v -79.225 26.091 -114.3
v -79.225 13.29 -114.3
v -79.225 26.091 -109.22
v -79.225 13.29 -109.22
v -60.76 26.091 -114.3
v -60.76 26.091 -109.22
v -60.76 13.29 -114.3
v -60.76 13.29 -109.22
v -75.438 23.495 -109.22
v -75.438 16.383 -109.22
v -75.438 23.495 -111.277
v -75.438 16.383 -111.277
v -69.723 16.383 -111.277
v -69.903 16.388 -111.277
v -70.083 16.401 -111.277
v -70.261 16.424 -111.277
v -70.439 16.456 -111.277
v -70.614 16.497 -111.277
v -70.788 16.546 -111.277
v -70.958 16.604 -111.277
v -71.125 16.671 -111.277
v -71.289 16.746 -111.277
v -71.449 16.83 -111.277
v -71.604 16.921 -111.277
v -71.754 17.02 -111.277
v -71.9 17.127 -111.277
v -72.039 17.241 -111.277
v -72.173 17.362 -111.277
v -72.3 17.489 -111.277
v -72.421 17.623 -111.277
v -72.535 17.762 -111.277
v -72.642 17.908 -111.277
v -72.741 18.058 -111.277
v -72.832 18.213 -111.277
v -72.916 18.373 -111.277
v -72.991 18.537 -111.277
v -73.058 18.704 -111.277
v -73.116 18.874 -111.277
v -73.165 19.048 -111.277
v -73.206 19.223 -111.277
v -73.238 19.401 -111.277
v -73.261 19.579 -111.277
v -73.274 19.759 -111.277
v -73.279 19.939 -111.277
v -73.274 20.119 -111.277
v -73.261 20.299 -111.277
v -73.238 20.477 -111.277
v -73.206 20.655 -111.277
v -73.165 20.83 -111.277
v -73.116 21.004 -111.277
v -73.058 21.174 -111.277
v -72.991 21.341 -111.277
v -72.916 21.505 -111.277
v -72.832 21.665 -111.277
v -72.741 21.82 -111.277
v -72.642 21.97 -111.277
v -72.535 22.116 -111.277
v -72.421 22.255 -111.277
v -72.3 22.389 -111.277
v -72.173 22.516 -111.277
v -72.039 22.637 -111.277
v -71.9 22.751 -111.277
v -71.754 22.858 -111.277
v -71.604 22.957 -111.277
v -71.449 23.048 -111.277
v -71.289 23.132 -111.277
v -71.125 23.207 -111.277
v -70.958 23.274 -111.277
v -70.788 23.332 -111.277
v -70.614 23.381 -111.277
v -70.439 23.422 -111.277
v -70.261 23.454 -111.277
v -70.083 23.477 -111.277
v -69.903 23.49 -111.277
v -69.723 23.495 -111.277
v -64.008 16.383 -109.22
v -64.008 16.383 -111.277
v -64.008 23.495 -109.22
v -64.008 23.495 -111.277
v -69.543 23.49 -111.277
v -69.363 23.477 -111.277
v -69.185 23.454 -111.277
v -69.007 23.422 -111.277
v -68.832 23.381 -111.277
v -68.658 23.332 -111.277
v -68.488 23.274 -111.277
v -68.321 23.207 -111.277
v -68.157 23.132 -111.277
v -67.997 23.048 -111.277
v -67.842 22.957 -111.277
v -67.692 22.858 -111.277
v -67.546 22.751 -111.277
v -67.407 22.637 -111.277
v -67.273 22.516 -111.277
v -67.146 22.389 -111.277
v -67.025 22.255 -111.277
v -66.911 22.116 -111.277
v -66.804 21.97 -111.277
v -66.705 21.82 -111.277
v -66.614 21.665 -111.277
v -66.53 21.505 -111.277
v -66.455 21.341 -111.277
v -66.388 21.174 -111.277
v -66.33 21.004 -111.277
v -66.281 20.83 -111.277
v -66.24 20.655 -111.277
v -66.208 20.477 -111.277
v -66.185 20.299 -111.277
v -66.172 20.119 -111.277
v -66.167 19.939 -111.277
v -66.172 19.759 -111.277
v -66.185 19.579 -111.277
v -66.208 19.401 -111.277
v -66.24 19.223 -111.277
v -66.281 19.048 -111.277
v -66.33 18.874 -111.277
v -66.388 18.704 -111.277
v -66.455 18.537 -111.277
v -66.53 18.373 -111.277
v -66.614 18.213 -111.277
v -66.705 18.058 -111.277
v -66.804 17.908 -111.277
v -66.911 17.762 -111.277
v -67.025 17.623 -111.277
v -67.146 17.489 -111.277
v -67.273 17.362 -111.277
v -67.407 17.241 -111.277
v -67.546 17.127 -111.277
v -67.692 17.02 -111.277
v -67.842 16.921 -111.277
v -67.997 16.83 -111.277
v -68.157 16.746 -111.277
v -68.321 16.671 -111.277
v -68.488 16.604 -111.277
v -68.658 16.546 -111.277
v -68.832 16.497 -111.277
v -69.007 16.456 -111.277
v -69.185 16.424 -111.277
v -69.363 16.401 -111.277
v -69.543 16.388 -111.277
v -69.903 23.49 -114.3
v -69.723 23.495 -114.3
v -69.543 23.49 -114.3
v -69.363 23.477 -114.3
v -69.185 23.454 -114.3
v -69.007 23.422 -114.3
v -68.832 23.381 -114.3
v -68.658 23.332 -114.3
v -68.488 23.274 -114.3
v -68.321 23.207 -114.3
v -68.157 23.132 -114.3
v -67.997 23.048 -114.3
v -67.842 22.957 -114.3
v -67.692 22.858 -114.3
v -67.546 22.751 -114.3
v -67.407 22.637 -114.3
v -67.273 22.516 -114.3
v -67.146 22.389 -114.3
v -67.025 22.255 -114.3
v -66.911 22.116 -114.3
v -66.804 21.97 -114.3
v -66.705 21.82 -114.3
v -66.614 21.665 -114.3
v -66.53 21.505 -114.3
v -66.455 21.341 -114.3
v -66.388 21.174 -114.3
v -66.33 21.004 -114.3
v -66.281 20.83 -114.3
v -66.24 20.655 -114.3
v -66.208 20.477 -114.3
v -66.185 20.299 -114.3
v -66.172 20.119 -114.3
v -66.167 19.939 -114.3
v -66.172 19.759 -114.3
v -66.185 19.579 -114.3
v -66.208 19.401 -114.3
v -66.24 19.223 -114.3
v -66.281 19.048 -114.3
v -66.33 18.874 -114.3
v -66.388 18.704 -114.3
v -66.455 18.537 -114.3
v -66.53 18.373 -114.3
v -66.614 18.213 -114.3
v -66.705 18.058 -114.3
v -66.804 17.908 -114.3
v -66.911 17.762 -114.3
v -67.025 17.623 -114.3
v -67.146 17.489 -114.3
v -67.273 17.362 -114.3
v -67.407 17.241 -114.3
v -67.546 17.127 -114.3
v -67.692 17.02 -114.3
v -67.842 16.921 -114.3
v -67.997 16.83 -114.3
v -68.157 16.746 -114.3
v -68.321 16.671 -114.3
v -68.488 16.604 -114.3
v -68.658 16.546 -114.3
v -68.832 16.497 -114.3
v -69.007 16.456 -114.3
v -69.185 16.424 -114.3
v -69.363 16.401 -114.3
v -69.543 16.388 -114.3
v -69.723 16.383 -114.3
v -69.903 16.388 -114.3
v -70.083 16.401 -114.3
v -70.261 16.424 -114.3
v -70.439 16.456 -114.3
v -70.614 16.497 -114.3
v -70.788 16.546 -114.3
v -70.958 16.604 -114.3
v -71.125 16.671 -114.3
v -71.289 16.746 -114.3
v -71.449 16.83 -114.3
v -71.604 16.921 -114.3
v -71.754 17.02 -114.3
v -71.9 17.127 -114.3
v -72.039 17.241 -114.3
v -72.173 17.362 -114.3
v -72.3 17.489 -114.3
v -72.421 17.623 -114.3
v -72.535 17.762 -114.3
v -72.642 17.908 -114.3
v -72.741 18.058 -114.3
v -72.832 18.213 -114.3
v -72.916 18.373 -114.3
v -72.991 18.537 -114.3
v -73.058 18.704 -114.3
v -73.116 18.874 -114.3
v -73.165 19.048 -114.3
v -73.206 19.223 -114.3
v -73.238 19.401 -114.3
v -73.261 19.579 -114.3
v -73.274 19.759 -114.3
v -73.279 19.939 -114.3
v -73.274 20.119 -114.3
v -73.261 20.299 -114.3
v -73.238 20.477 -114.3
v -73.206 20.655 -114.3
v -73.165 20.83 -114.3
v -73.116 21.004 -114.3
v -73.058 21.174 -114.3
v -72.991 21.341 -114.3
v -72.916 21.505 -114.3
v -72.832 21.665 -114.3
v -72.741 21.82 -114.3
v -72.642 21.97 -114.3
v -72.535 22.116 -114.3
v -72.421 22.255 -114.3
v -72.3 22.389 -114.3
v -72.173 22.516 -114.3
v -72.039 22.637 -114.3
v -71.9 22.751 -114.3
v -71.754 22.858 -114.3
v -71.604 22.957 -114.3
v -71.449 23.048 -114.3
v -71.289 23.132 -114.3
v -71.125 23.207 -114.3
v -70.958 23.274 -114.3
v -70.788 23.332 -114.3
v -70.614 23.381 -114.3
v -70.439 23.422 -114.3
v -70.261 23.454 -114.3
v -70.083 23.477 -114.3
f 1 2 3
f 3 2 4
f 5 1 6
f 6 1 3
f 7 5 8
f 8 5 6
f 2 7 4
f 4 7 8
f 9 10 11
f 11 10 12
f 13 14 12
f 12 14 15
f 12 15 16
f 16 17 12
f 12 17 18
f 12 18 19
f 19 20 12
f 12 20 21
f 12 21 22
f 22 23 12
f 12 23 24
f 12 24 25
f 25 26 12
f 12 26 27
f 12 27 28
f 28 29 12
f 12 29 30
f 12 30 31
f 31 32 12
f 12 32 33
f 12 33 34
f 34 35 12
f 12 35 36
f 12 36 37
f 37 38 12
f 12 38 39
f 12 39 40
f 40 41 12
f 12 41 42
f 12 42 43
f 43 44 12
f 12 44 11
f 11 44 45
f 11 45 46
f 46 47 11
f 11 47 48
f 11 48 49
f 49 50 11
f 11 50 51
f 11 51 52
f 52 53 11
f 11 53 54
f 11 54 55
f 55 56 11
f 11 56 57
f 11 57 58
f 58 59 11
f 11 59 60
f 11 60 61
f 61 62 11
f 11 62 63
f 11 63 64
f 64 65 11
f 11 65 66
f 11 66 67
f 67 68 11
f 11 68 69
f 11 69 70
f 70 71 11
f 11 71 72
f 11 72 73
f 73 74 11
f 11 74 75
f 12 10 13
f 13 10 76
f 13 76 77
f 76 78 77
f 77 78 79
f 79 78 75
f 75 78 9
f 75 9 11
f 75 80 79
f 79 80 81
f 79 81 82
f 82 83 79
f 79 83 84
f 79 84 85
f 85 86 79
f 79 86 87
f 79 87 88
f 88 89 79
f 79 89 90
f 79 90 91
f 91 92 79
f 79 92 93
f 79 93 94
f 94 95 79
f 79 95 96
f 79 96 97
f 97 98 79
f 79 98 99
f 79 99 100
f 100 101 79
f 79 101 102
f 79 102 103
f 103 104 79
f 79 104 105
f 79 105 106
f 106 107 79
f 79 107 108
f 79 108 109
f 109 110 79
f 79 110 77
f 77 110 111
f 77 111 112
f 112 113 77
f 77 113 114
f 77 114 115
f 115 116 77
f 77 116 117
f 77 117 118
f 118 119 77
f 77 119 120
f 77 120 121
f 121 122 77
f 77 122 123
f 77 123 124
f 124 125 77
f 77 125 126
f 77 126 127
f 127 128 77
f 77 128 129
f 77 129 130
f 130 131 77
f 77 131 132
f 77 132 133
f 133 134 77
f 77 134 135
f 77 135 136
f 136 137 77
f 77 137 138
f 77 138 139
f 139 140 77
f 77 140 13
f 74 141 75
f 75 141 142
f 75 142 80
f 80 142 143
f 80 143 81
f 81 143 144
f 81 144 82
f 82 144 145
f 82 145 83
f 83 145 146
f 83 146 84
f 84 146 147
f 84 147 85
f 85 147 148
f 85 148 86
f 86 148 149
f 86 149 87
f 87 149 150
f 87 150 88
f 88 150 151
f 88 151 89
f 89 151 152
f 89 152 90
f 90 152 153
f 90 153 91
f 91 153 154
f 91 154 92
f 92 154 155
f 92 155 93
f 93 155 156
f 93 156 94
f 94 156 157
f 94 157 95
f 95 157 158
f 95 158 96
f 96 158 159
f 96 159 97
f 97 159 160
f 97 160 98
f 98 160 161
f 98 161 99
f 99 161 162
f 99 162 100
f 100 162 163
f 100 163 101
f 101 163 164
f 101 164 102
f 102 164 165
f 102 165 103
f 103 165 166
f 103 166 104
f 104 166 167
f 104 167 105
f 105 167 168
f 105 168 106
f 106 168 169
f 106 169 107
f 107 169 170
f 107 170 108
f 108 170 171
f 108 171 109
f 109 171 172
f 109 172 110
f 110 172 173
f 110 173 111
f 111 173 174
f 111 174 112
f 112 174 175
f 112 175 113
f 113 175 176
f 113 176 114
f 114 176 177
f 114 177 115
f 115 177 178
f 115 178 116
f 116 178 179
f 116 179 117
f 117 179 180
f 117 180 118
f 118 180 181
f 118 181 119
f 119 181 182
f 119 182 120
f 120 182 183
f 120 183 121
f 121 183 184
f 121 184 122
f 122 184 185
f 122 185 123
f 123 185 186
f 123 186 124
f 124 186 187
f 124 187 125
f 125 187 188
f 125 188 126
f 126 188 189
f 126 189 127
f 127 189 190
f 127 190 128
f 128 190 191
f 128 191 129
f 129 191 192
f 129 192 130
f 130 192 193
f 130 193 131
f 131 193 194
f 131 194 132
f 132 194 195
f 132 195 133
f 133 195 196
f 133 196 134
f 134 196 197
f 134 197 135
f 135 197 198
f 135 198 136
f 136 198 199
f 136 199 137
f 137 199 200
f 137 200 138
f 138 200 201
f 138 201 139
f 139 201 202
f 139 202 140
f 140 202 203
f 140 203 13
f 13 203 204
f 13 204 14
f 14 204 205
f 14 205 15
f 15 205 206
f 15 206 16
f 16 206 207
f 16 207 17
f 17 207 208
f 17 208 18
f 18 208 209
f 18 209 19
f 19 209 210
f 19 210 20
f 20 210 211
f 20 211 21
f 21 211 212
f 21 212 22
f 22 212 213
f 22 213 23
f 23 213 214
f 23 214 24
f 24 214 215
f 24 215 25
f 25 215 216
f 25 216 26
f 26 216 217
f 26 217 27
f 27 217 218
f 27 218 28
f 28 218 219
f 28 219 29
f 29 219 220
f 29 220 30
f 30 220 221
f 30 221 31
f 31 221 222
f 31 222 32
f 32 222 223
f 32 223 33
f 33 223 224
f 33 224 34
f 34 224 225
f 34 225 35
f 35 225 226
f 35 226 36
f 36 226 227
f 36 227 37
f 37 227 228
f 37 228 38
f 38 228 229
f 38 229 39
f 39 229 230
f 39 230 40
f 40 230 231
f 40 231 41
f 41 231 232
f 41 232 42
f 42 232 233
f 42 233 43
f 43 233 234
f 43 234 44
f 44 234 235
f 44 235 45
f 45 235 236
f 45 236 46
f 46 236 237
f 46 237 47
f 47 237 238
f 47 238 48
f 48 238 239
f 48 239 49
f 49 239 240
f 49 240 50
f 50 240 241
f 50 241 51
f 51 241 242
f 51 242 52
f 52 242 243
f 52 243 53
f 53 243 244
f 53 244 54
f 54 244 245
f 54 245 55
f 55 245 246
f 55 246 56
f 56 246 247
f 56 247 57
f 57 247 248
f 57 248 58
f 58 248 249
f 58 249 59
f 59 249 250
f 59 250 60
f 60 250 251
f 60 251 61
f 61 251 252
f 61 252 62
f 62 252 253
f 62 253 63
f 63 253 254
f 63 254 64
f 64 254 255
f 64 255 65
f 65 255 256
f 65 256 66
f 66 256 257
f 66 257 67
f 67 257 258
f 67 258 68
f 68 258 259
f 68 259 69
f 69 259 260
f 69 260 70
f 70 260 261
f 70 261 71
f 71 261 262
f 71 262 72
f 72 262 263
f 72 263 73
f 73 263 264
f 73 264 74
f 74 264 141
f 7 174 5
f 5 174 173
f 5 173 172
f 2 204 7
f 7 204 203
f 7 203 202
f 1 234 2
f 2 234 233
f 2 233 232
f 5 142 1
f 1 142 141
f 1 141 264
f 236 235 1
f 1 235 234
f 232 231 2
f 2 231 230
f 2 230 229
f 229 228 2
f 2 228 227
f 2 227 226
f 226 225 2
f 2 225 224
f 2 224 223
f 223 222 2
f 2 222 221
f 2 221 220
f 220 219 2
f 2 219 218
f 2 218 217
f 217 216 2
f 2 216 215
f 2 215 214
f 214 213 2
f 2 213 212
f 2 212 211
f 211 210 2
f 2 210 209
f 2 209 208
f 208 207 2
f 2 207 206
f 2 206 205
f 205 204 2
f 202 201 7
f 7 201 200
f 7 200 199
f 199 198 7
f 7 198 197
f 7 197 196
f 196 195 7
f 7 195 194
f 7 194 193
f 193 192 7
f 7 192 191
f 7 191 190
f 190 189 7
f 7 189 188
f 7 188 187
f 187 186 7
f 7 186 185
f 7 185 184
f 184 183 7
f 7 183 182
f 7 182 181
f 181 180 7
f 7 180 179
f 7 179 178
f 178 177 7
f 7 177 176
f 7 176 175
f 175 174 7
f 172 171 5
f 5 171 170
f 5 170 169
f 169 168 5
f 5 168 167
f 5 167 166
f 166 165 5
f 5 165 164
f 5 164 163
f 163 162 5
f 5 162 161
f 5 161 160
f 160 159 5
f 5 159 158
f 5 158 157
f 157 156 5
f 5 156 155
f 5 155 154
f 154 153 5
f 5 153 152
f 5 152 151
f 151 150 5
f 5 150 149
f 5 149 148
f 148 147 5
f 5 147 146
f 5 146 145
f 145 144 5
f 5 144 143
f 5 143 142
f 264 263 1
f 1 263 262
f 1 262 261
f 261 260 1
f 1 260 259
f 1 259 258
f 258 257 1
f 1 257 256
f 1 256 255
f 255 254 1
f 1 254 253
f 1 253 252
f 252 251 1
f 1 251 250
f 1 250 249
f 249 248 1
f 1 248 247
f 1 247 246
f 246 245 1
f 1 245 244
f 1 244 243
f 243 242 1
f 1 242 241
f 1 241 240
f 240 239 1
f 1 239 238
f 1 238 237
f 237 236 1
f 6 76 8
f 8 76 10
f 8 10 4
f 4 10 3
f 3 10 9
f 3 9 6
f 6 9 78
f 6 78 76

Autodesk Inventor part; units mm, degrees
ref_plane "YZ Plane" through (0, 0, 0) normal (1, 0, 0) x (0, 1, 0)
ref_plane "XZ Plane" through (0, 0, 0) normal (0, 1, 0) x (-1, 0, 0)
ref_plane "XY Plane" through (0, 0, 0) normal (0, 0, 1) x (1, 0, 0)
sketch "Sketch1" plane through (0, 0, 0) normal (0, 1, 0) x (-1, 0, 0)
  line L0 (0, 0) -> (177.8, 0)
  line L1 (177.8, 0) -> (177.8, -114.3)
  line L2 (177.8, -114.3) -> (0, -114.3)
  line L3 (0, -114.3) -> (0, 0)
  dimension "d0" = 177.8
  dimension "d1" = 114.3
extrude "Extrusion1" add sketch "Sketch1" along normal blind 38.1
sketch "Sketch2" plane through (0, 0, 0) normal (0, -1, 0) x (1, 0, 0)
  line L0 (-177.8, -114.3) -> (-177.8, 0) projected
  line L1 (0, 0) -> (-177.8, 0)
  line L2 (-177.8, 0) -> (-177.8, -114.3)
  line L3 (-177.8, -114.3) -> (0, -114.3)
  line L4 (0, -114.3) -> (0, 0)
  line L5 (-5.08, -5.08) -> (-172.72, -5.08)
  line L6 (-172.72, -5.08) -> (-172.72, -109.22)
  line L7 (-172.72, -109.22) -> (-5.08, -109.22)
  line L8 (-5.08, -109.22) -> (-5.08, -5.08)
  dimension "d4" = 5.08
extrude "Extrusion2" cut sketch "Sketch2" against normal blind 35.56 contours L8 L7 L6 L5
fillet "Fillet1" radius 3.175 4 edges at (-177.8, 38.1, -57.15) (-88.9, 38.1, 0) (-88.9, 38.1, -114.3) (0, 38.1, -57.15)
sketch "Sketch3" plane through (0, 38.1, 0) normal (0, 1, 0) x (1, 0, 0)
  line L0 (-177.8, 114.3) -> (-171.45, 114.3)
  line L1 (-171.45, 114.3) -> (-171.45, 0)
  line L2 (-171.45, 0) -> (-177.8, 0)
  line L3 (-177.8, 0) -> (-177.8, 114.3)
  line L4 (0, 114.3) -> (-177.8, 114.3) projected
  line L5 (-177.8, 114.3) -> (0, 114.3)
  line L6 (0, 114.3) -> (0, 107.95)
  line L7 (0, 107.95) -> (-177.8, 107.95)
  line L8 (-177.8, 107.95) -> (-177.8, 114.3)
  line L9 (-158.75, 100.4887) -> (-100.6475, 100.4887)
  line L10 (-100.6475, 100.4887) -> (-100.6475, 13.8112)
  line L11 (-100.6475, 13.8112) -> (-158.75, 13.8112)
  line L12 (-158.75, 13.8112) -> (-158.75, 100.4887)
  point P0 (0, 0)
  dimension "d8" = 6.35
  dimension "d9" = 6.35
  dimension "d10" = 58.1025
  dimension "d11" = 86.6775
  dimension "d12" = 13.8112
  dimension "d13" = 19.05
extrude "Extrusion3" cut sketch "Sketch3" against normal blind 35.56 contours L9 L10 L11 L12
sketch "Sketch4" plane through (0, 38.1, 0) normal (0, 1, 0) x (1, 0, 0)
  line L0 (-94.2975, 17.78) -> (-81.2088, 17.78)
  line L1 (-91.7575, 20.32) -> (-91.7575, 26.67)
  line L2 (-91.7575, 26.67) -> (-94.2975, 26.67)
  line L3 (-94.2975, 26.67) -> (-94.2975, 17.78)
  line L4 (-94.2975, 17.78) -> (-78.6765, 17.78)
  line L5 (-78.6765, 17.78) -> (-78.6765, 20.32)
  line L6 (-94.2975, 24.2647) -> (-94.2975, 17.78)
  line L7 (-85.6615, 20.32) -> (-85.6615, 24.13)
  line L8 (-85.6615, 24.13) -> (-88.2015, 24.13)
  line L9 (-88.2015, 24.13) -> (-88.2015, 20.32)
  line L10 (-78.6765, 20.32) -> (-85.6615, 20.32)
  line L11 (-88.2015, 20.32) -> (-91.7575, 20.32)
  line L12 (-100.6475, 100.4887) -> (-100.6475, 13.8112) projected
  line L13 (-177.8, 0) -> (0, 0) projected
  line L14 (-94.2975, 27.94) -> (-78.6765, 27.94)
  line L15 (-78.6765, 27.94) -> (-78.6765, 30.7699)
  line L16 (-81.2165, 30.48) -> (-94.2975, 30.48)
  line L17 (-94.2975, 30.48) -> (-94.2975, 27.94)
  line L18 (-83.0828, 27.94) -> (-78.6765, 27.94)
  line L19 (-78.6765, 27.94) -> (-78.6765, 36.83)
  line L20 (-78.6765, 36.83) -> (-81.2165, 36.83)
  line L21 (-81.2165, 36.83) -> (-81.2165, 30.48)
  ellipse E0 centre (-86.487, 41.91) end of major axis (-94.2975, 41.91) minor radius 5.334
  ellipse E1 centre (-86.487, 53.34) end of major axis (-94.2975, 53.34) minor radius 5.334
  line L22 (-94.2975, 60.96) -> (-78.6765, 60.96)
  line L23 (-78.6765, 60.96) -> (-78.6765, 63.754)
  line L24 (-94.2975, 63.754) -> (-94.2975, 60.96)
  ellipse E2 centre (-86.487, 63.754) end of major axis (-94.2975, 63.754) minor radius 7.62 (-78.6765, 63.754) -> (-94.2975, 63.754) ccw
  line L25 (-91.7575, 63.754) -> (-91.7575, 63.5)
  line L26 (-91.7575, 63.5) -> (-81.2165, 63.5)
  line L27 (-81.2165, 63.5) -> (-81.2165, 63.754)
  line L28 (-94.2975, 82.55) -> (-78.6765, 82.55)
  line L29 (-78.6765, 82.55) -> (-78.6765, 80.01)
  line L30 (-78.6765, 80.01) -> (-94.2975, 80.01)
  line L31 (-94.2975, 80.01) -> (-94.2975, 82.55)
  line L32 (-91.7575, 89.535) -> (-78.6765, 89.535)
  line L33 (-78.6765, 89.535) -> (-78.6765, 92.075)
  line L34 (-78.6765, 92.075) -> (-91.7575, 92.075)
  line L35 (-94.2975, 94.8241) -> (-94.2975, 91.9305)
  line L36 (-94.2975, 85.09) -> (-91.7575, 85.09)
  line L37 (-91.7575, 96.52) -> (-94.2975, 96.52)
  line L38 (-94.2975, 96.52) -> (-94.2975, 85.09)
  line L39 (-91.7575, 85.09) -> (-91.7575, 89.535)
  line L40 (-91.7575, 92.075) -> (-91.7575, 96.52)
  spline S0 degree 5 poles (-91.7575, 41.91) (-91.7584, 41.6813) (-91.6944, 41.4527) (-91.5885, 41.2473) (-91.2042, 40.6846) (-90.6636, 40.2564) (-90.282, 40.0177) (-89.3306, 39.5478) (-88.3046, 39.2718) (-87.7026, 39.1679) (-86.487, 39.0641) (-85.2714, 39.1679) (-84.6694, 39.2718) (-83.6435, 39.5478) (-82.692, 40.0176) (-82.3107, 40.2563) (-81.7696, 40.6845) (-81.3858, 41.2473) (-81.2787, 41.4526) (-81.1539, 41.91) (-81.2787, 42.3674) (-81.3858, 42.5727) (-81.7696, 43.1355) (-82.3107, 43.5637) (-82.692, 43.8024) (-83.6435, 44.2722) (-84.6694, 44.5482) (-85.2714, 44.6521) (-86.487, 44.7559) (-87.7026, 44.6521) (-88.3046, 44.5482) (-89.3306, 44.2722) (-90.282, 43.8023) (-90.6636, 43.5636) (-91.2042, 43.1354) (-91.5885, 42.5727) (-91.6944, 42.3673) (-91.7584, 42.1387) (-91.7575, 41.91) knots 0 0 0 0 0 0 0.044471 0.044471 0.044471 0.131758 0.131758 0.131758 0.25 0.25 0.25 0.36824 0.36824 0.36824 0.455522 0.455522 0.455522 0.5 0.5 0.5 0.544478 0.544478 0.544478 0.63176 0.63176 0.63176 0.75 0.75 0.75 0.868242 0.868242 0.868242 0.955529 0.955529 0.955529 1 1 1 1 1 1
  spline S1 degree 5 poles (-91.7575, 53.34) (-91.7584, 53.1113) (-91.6944, 52.8827) (-91.5885, 52.6773) (-91.2042, 52.1146) (-90.6636, 51.6864) (-90.282, 51.4477) (-89.3306, 50.9778) (-88.3046, 50.7018) (-87.7026, 50.5979) (-86.487, 50.4941) (-85.2714, 50.5979) (-84.6694, 50.7018) (-83.6435, 50.9778) (-82.692, 51.4476) (-82.3107, 51.6863) (-81.7696, 52.1145) (-81.3858, 52.6773) (-81.2787, 52.8826) (-81.1539, 53.34) (-81.2787, 53.7974) (-81.3858, 54.0027) (-81.7696, 54.5655) (-82.3107, 54.9937) (-82.692, 55.2324) (-83.6435, 55.7022) (-84.6694, 55.9782) (-85.2714, 56.0821) (-86.487, 56.1859) (-87.7026, 56.0821) (-88.3046, 55.9782) (-89.3306, 55.7022) (-90.282, 55.2323) (-90.6636, 54.9936) (-91.2042, 54.5654) (-91.5885, 54.0027) (-91.6944, 53.7973) (-91.7584, 53.5687) (-91.7575, 53.34) knots 0 0 0 0 0 0 0.044471 0.044471 0.044471 0.131758 0.131758 0.131758 0.25 0.25 0.25 0.36824 0.36824 0.36824 0.455522 0.455522 0.455522 0.5 0.5 0.5 0.544478 0.544478 0.544478 0.63176 0.63176 0.63176 0.75 0.75 0.75 0.868242 0.868242 0.868242 0.955529 0.955529 0.955529 1 1 1 1 1 1
  spline S2 degree 5 poles (-81.2165, 63.754) (-81.2166, 64.309) (-81.2953, 64.8639) (-81.4525, 65.404) (-82.1282, 66.8995) (-83.3585, 68.0474) (-84.3453, 68.5716) (-86.487, 69.0964) (-88.6287, 68.5716) (-89.6155, 68.0474) (-90.8458, 66.8995) (-91.5215, 65.404) (-91.6787, 64.8639) (-91.7574, 64.309) (-91.7575, 63.754) knots 0 0 0 0 0 0 0.170659 0.170659 0.170659 0.5 0.5 0.5 0.829341 0.829341 0.829341 1 1 1 1 1 1
  point P0 (-94.2975, 93.3773)
  point P1 (-88.9, 0)
  point P2 (-93.0275, 85.09)
  dimension "d32" = 5.334
  dimension "d33" = 7.8105
  dimension "d36" = 7.8105
  dimension "d37" = 5.334
  dimension "d42" = 7.62
  dimension "d43" = 2.54
  dimension "d16" = 2.54
  dimension "d17" = 3.556
  dimension "d18" = 2.54
  dimension "d19" = 6.985
  dimension "d20" = 8.89
  dimension "d21" = 6.35
  dimension "d22" = 3.81
  dimension "d23" = 3.81
  dimension "d24" = 6.35
  dimension "d25" = 17.78
  dimension "d26" = 2.54
  dimension "d27" = 2.54
  dimension "d28" = 6.35
  dimension "d29" = 15.621
  dimension "d30" = 6.35
  dimension "d31" = 27.94
  dimension "d34" = 14.1605
  dimension "d35" = 41.91
  dimension "d38" = 14.1605
  dimension "d39" = 53.34
  dimension "d40" = 2.54
  dimension "d41" = 2.54
  dimension "d44" = 6.35
  dimension "d45" = 15.621
  dimension "d46" = 60.96
  dimension "d47" = 2.794
  dimension "d48" = 63.754
  dimension "d49" = 14.1605
  dimension "d50" = 2.54
  dimension "d51" = 15.621
  dimension "d52" = 4.445
  dimension "d53" = 4.445
  dimension "d54" = 2.54
  dimension "d55" = 2.54
  dimension "d56" = 6.35
  dimension "d57" = 80.01
  dimension "d58" = 2.54
  dimension "d59" = 13.081
  dimension "d62" = 3.9688
  dimension "d63" = 3.9688
extrude "Extrusion4" cut sketch "Sketch4" against normal blind 1.27
sketch "Sketch5" plane through (0, 38.1, 0) normal (0, 1, 0) x (1, 0, 0)
  line L0 (-43.4975, 22.6219) -> (-37.9413, 22.6219)
  line L1 (-37.9413, 22.6219) -> (-37.9413, 28.1781)
  line L2 (-37.9413, 28.1781) -> (-43.4975, 28.1781)
  line L3 (-43.4975, 28.1781) -> (-43.4975, 22.6219)
  line L4 (-43.4975, 38.4969) -> (-37.9413, 38.4969)
  line L5 (-37.9413, 38.4969) -> (-37.9413, 44.0531)
  line L6 (-37.9413, 44.0531) -> (-43.4975, 44.0531)
  line L7 (-43.4975, 44.0531) -> (-43.4975, 38.4969)
  line L8 (-43.4975, 54.3719) -> (-37.9413, 54.3719)
  line L9 (-37.9413, 54.3719) -> (-37.9413, 59.9281)
  line L10 (-37.9413, 59.9281) -> (-43.4975, 59.9281)
  line L11 (-43.4975, 59.9281) -> (-43.4975, 54.3719)
  line L12 (-43.4975, 70.2469) -> (-37.9413, 70.2469)
  line L13 (-37.9413, 70.2469) -> (-37.9413, 75.8031)
  line L14 (-37.9413, 75.8031) -> (-43.4975, 75.8031)
  line L15 (-43.4975, 75.8031) -> (-43.4975, 70.2469)
  line L16 (-43.4975, 86.1219) -> (-37.9413, 86.1219)
  line L17 (-37.9413, 86.1219) -> (-37.9413, 91.6781)
  line L18 (-37.9413, 91.6781) -> (-43.4975, 91.6781)
  line L19 (-43.4975, 91.6781) -> (-43.4975, 86.1219)
  line L20 (0, 114.3) -> (-177.8, 114.3) projected
  line L21 (-177.8, 0) -> (0, 0) projected
  line L22 (-100.6475, 100.4887) -> (-100.6475, 13.8112) projected
  circle A0 centre (-21.9075, 25.4) radius 3.81
  circle A1 centre (-21.9075, 41.275) radius 3.81
  circle A2 centre (-21.9075, 57.15) radius 3.81
  circle A3 centre (-21.9075, 73.025) radius 3.81
  circle A4 centre (-21.9075, 88.9) radius 3.81
  point P0 (-43.4975, 73.025)
  dimension "d64" = 5.5563
  dimension "d65" = 5.5563
  dimension "d66" = 5.5563
  dimension "d67" = 5.5563
  dimension "d68" = 5.5563
  dimension "d69" = 5.5563
  dimension "d70" = 15.875
  dimension "d71" = 15.875
  dimension "d72" = 15.875
  dimension "d73" = 15.875
  dimension "d74" = 22.6219
  dimension "d76" = 57.15
  dimension "d77" = 7.62
  dimension "d78" = 7.62
  dimension "d79" = 7.62
  dimension "d80" = 7.62
  dimension "d81" = 7.62
  dimension "d82" = 15.875
  dimension "d83" = 15.875
  dimension "d84" = 15.875
  dimension "d85" = 15.875
  dimension "d86" = 25.4
  dimension "d87" = 78.74
  dimension "d88" = 78.74
  dimension "d89" = 78.74
  dimension "d90" = 78.74
  dimension "d91" = 78.74
extrude "Extrusion5" cut sketch "Sketch5" against normal blind 25.4
sketch "Sketch6" plane through (0, 35.56, 0) normal (0, -1, 0) x (1, 0, 0)
  circle A0 centre (-21.9075, -88.9) radius 3.81 projected
  circle A1 centre (-21.9075, -88.9) radius 5.08
  circle A2 centre (-21.9075, -73.025) radius 3.81 projected
  circle A3 centre (-21.9075, -73.025) radius 5.08
  circle A4 centre (-21.9075, -57.15) radius 3.81 projected
  circle A5 centre (-21.9075, -57.15) radius 5.08
  circle A6 centre (-21.9075, -41.275) radius 3.81 projected
  circle A7 centre (-21.9075, -41.275) radius 5.08
  circle A8 centre (-21.9075, -25.4) radius 3.81 projected
  circle A9 centre (-21.9075, -25.4) radius 5.08
  line L0 (-43.4975, -59.9281) -> (-37.9413, -59.9281)
  line L1 (-37.9413, -59.9281) -> (-37.9413, -54.3719)
  line L2 (-37.9413, -54.3719) -> (-43.4975, -54.3719)
  line L3 (-43.4975, -54.3719) -> (-43.4975, -59.9281)
  line L4 (-45.4025, -61.8331) -> (-36.0363, -61.8331)
  line L5 (-36.0363, -61.8331) -> (-36.0363, -52.4669)
  line L6 (-36.0363, -52.4669) -> (-45.4025, -52.4669)
  line L7 (-45.4025, -52.4669) -> (-45.4025, -61.8331)
  line L8 (-43.4975, -91.6781) -> (-37.9413, -91.6781)
  line L9 (-37.9413, -91.6781) -> (-37.9413, -86.1219)
  line L10 (-37.9413, -86.1219) -> (-43.4975, -86.1219)
  line L11 (-43.4975, -86.1219) -> (-43.4975, -91.6781)
  line L12 (-43.4975, -75.8031) -> (-37.9413, -75.8031) projected
  line L13 (-37.9413, -70.2469) -> (-36.6713, -68.9769) projected
  line L14 (-43.4975, -75.8031) -> (-37.9413, -75.8031)
  line L15 (-37.9413, -75.8031) -> (-37.9413, -70.2469)
  line L16 (-37.9413, -70.2469) -> (-43.4975, -70.2469)
  line L17 (-43.4975, -70.2469) -> (-43.4975, -75.8031)
  line L18 (-43.4975, -38.4969) -> (-43.4975, -44.0531) projected
  line L19 (-43.4975, -44.0531) -> (-37.9413, -44.0531)
  line L20 (-37.9413, -44.0531) -> (-37.9413, -38.4969)
  line L21 (-37.9413, -38.4969) -> (-43.4975, -38.4969)
  line L22 (-43.4975, -38.4969) -> (-43.4975, -44.0531)
  line L23 (-37.9413, -28.1781) -> (-43.4975, -28.1781) projected
  line L24 (-37.9413, -22.6219) -> (-36.6713, -21.3519) projected
  line L25 (-43.4975, -28.1781) -> (-37.9413, -28.1781)
  line L26 (-37.9413, -28.1781) -> (-37.9413, -22.6219)
  line L27 (-37.9413, -22.6219) -> (-43.4975, -22.6219)
  line L28 (-43.4975, -22.6219) -> (-43.4975, -28.1781)
  line L29 (-45.4025, -77.7081) -> (-36.0363, -77.7081)
  line L30 (-36.0363, -77.7081) -> (-36.0363, -68.3419)
  line L31 (-36.0363, -68.3419) -> (-45.4025, -68.3419)
  line L32 (-45.4025, -68.3419) -> (-45.4025, -77.7081)
  line L33 (-45.4025, -84.2169) -> (-36.0362, -84.2169)
  line L34 (-36.0362, -84.2169) -> (-36.0362, -93.5831)
  line L35 (-36.0362, -93.5831) -> (-45.4025, -93.5831)
  line L36 (-45.4025, -93.5831) -> (-45.4025, -84.2169)
  line L37 (-36.0362, -45.9581) -> (-45.4025, -45.9581)
  line L38 (-45.4025, -45.9581) -> (-45.4025, -36.5919)
  line L39 (-45.4025, -36.5919) -> (-36.0362, -36.5919)
  line L40 (-36.0362, -36.5919) -> (-36.0362, -45.9581)
  line L41 (-45.4025, -30.0831) -> (-36.0363, -30.0831)
  line L42 (-36.0363, -30.0831) -> (-36.0363, -20.7169)
  line L43 (-36.0363, -20.7169) -> (-45.4025, -20.7169)
  line L44 (-45.4025, -20.7169) -> (-45.4025, -30.0831)
  line L45 (-48.3394, -99.6918) -> (-33.0994, -99.6918)
  line L46 (-33.0994, -99.6918) -> (-33.0994, -14.6018)
  line L47 (-33.0994, -14.6018) -> (-48.3394, -14.6018)
  line L48 (-48.3394, -14.6018) -> (-48.3394, -99.6918)
  point P0 (0, 0)
  point P1 (-43.4975, -38.4969)
  point P2 (-40.7194, -44.0531)
  point P3 (-40.7194, -91.6781)
  point P4 (-40.7194, -14.6018)
  dimension "d97" = 10.16
  dimension "d98" = 10.16
  dimension "d99" = 10.16
  dimension "d100" = 10.16
  dimension "d101" = 10.16
  dimension "d119" = 1.905
  dimension "d120" = 1.905
  dimension "d121" = 1.905
  dimension "d122" = 1.905
  dimension "d123" = 1.905
  dimension "d136" = 15.24
  dimension "d137" = 85.09
  dimension "d139" = 7.62
  dimension "d140" = 8.0137
  dimension "d141" = 8.02
extrude "Extrusion6" cut sketch "Sketch6" against normal blind 1.27 contours A1 | A3 | A5 | A7 | A9
extrude "Extrusion9" cut sketch "Sketch6" against normal blind 1.7463 contours L7 L6 L5 L4 | L32 L31 L30 L29 | L33 L34 L35 L36 | L37 L38 L39 L40 | L44 L43 L42 L41
sketch "Sketch8" plane through (0, 35.56, 0) normal (0, -1, 0) x (1, 0, 0)
  line L0 (-100.6475, -13.8112) -> (-100.6475, -100.4887) projected
  line L1 (-100.6475, -13.8112) -> (-158.75, -13.8112)
  line L2 (-158.75, -13.8112) -> (-158.75, -7.4613)
  line L3 (-158.75, -7.4613) -> (-100.6475, -7.4612)
  line L4 (-100.6475, -7.4612) -> (-100.6475, -13.8112)
  line L5 (-158.75, -100.4887) -> (-100.6475, -100.4887) projected
  line L6 (-100.6475, -100.4887) -> (-158.75, -100.4887)
  line L7 (-158.75, -100.4887) -> (-158.75, -107.4737)
  line L8 (-158.75, -107.4737) -> (-100.6475, -107.4737)
  line L9 (-100.6475, -107.4737) -> (-100.6475, -100.4887)
  line L10 (-100.6475, -7.4612) -> (-94.2975, -7.4612)
  line L11 (-94.2975, -7.4612) -> (-94.2975, -13.8112)
  line L12 (-94.2975, -13.8112) -> (-100.6475, -13.8112)
  line L13 (-100.6475, -13.8112) -> (-100.6475, -7.4612)
  line L14 (-100.6475, -100.4887) -> (-94.2975, -100.4887)
  line L15 (-94.2975, -100.4887) -> (-94.2975, -107.4737)
  line L16 (-94.2975, -107.4737) -> (-100.6475, -107.4737)
  line L17 (-100.6475, -107.4737) -> (-100.6475, -100.4887)
  line L18 (-158.75, -100.4887) -> (-165.1, -100.4887)
  line L19 (-165.1, -100.4887) -> (-165.1, -107.4737)
  line L20 (-165.1, -107.4737) -> (-158.75, -107.4737)
  line L21 (-158.75, -107.4737) -> (-158.75, -100.4887)
  line L22 (-158.75, -7.4613) -> (-165.1, -7.4613)
  line L23 (-165.1, -7.4613) -> (-165.1, -13.8112)
  line L24 (-165.1, -13.8112) -> (-158.75, -13.8112)
  line L25 (-158.75, -13.8112) -> (-158.75, -7.4613)
  line L26 (-102.4053, -9.0487) -> (-155.7453, -9.0487)
  line L27 (-155.7453, -9.0487) -> (-155.7453, -12.2237)
  line L28 (-155.7453, -12.2237) -> (-102.4053, -12.2237)
  line L29 (-102.4053, -12.2237) -> (-102.4053, -9.0487)
  point P0 (0, 0)
  dimension "d126" = 6.35
  dimension "d127" = 6.985
  dimension "d128" = 6.35
  dimension "d129" = 6.35
  dimension "d130" = 6.35
  dimension "d131" = 53.34
  dimension "d132" = 3.175
  dimension "d133" = 1.5875
extrude "Extrusion10" cut sketch "Sketch8" against normal blind 1.27 contours L29 L28 L27 L26
extrude "Extrusion11" cut sketch "Sketch6" against normal blind 0.9525 contours L48 L47 L46 L45
sketch "Sketch9" plane through (-177.8, 0, 0) normal (0, 0, 1) x (1, 0, 0)
  line L0 (77.1525, 35.56) -> (19.05, 35.56) projected
  line L1 (172.72, 0) -> (5.08, 0) projected
  line L2 (77.1525, 35.56) -> (127.9525, 35.56)
  line L3 (127.9525, 35.56) -> (127.9525, 0)
  line L4 (127.9525, 0) -> (77.1525, 0)
  line L5 (77.1525, 0) -> (77.1525, 35.56)
  line L6 (86.0425, 17.145) -> (106.68, 17.145)
  line L7 (106.68, 17.145) -> (106.68, 15.0495)
  line L8 (106.68, 15.0495) -> (86.0425, 15.0495)
  line L9 (86.0425, 15.0495) -> (86.0425, 17.145)
  line L10 (88.5825, 15.0495) -> (97.4725, 15.0495)
  line L11 (97.4725, 15.0495) -> (97.4725, 11.2395)
  line L12 (97.4725, 11.2395) -> (88.5825, 11.2395)
  line L13 (88.5825, 11.2395) -> (88.5825, 15.0495)
  line L14 (0, 34.925) -> (177.8, 34.925) projected
  line L15 (0, 0) -> (0, 34.925) projected
  line L16 (177.8, 0) -> (177.8, 34.925) projected
  point P0 (97.4725, 15.0495)
  dimension "d144" = 50.8
  dimension "d145" = 20.6375
  dimension "d146" = 2.0955
  dimension "d147" = 8.89
  dimension "d148" = 3.81
  dimension "d149" = 2.54
  dimension "d150" = 17.78
  dimension "d187" = 71.12
extrude "Extrusion12" cut sketch "Sketch9" against normal blind 5.08 contours L6 L7 L8 L9 | L8 L11 L12 L13
sketch "Sketch10" plane through (-5.08, 0, -5.08) normal (0, 0, -1) x (-1, 0, 0)
  line L0 (84.1375, 11.2395) -> (75.2475, 11.2395) projected
  line L1 (84.1375, 15.0495) -> (86.6775, 15.0495) projected
  line L2 (75.2475, 11.2395) -> (84.1375, 11.2395)
  line L3 (84.1375, 11.2395) -> (84.1375, 15.0495)
  line L4 (75.2475, 15.0495) -> (75.2475, 11.2395)
  line L5 (75.2475, 15.0495) -> (66.04, 15.0495) projected
  line L6 (86.6775, 17.145) -> (86.6775, 15.0495) projected
  line L7 (86.6775, 15.0495) -> (86.6775, 17.145)
  line L8 (86.6775, 17.145) -> (66.04, 17.145)
  line L9 (66.04, 17.145) -> (66.04, 15.0495)
  line L10 (66.04, 15.0495) -> (75.2475, 15.0495)
  line L11 (84.1375, 15.0495) -> (86.6775, 15.0495)
  line L12 (73.3425, 9.3345) -> (86.0425, 9.3345)
  line L13 (86.0425, 9.3345) -> (86.0425, 13.1445)
  line L14 (86.0425, 13.1445) -> (88.5825, 13.1445)
  line L15 (88.5825, 13.1445) -> (88.5825, 19.05)
  line L16 (88.5825, 19.05) -> (64.135, 19.05)
  line L17 (64.135, 19.05) -> (64.135, 13.1445)
  line L18 (64.135, 13.1445) -> (73.3425, 13.1445)
  line L19 (73.3425, 13.1445) -> (73.3425, 9.3345)
  line L20 (73.3425, 13.1445) -> (73.3425, 15.0495)
  line L21 (86.0425, 13.1445) -> (86.0425, 15.0495)
  point P0 (-5.08, 0)
  dimension "d153" = 1.905
extrude "Extrusion13" cut sketch "Sketch10" against normal blind 3.175 contours L3 L1 L21 L13 L12 L19 L20 L5 L4 L0 | L1 L6 L8 L9 L5 L20 L18 L17 L16 L15 L14 L21
sketch "Sketch11" plane through (0, 0, -114.3) normal (0, 0, -1) x (-1, 0, 0)
  line L0 (63.5, 23.495) -> (75.946, 23.495)
  line L1 (75.946, 23.495) -> (75.946, 16.383)
  line L2 (75.946, 16.383) -> (63.5, 16.383)
  line L3 (63.5, 16.383) -> (63.5, 23.495)
  line L4 (0, 0) -> (0, 34.925) projected
  circle A0 centre (69.723, 19.939) radius 3.556
  line L5 (0, 34.925) -> (177.8, 34.925) projected
  point P0 (69.723, 23.495)
  dimension "d156" = 7.112
  dimension "d157" = 63.5
  dimension "d158" = 12.446
  dimension "d164" = 11.43
  dimension "d194" = 7.112
  dimension "d195" = 3.556
  dimension "d197" = 6.223
extrude "Extrusion14" cut sketch "Sketch11" against normal blind 6.35 contours A0
sketch "Sketch12" plane through (-172.72, 0, -109.22) normal (0, 0, 1) x (1, 0, 0)
  line L0 (97.282, 16.383) -> (108.712, 16.383)
  line L1 (108.712, 16.383) -> (108.712, 23.495)
  line L2 (108.712, 23.495) -> (97.282, 23.495)
  line L3 (97.282, 23.495) -> (97.282, 16.383)
  circle A0 centre (102.997, 19.939) radius 3.556 projected
  line L4 (97.282, 16.383) -> (108.712, 23.495) construction
  line L5 (108.712, 16.383) -> (97.282, 23.495) construction
  point P0 (172.72, 0)
  point P1 (102.997, 16.383)
  point P2 (102.997, 23.495)
  point P3 (102.997, 19.939)
  dimension "d161" = 11.43
  dimension "d196" = 3.556
extrude "Extrusion15" cut sketch "Sketch12" against normal blind 2.0574 contours L3 L2 A0 L0 | A0 L2 L1 L0
sketch "Sketch13" plane through (0, 35.56, 0) normal (0, -1, 0) x (1, 0, 0)
  line L0 (-48.3394, -99.6918) -> (-48.3394, -14.6018) projected
  line L1 (-48.3394, -31.1933) -> (-46.4344, -31.1933)
  line L2 (-46.4344, -31.1933) -> (-46.4344, -36.2733)
  line L3 (-46.4344, -36.2733) -> (-48.3394, -36.2733)
  line L4 (-48.3394, -36.2733) -> (-48.3394, -31.1933)
  line L5 (-33.0994, -14.6018) -> (-33.0994, -99.6918) projected
  line L6 (-33.0994, -36.2733) -> (-35.0044, -36.2733)
  line L7 (-35.0044, -36.2733) -> (-35.0044, -31.1933)
  line L8 (-35.0044, -31.1933) -> (-33.0994, -31.1933)
  line L9 (-33.0994, -31.1933) -> (-33.0994, -36.2733)
  line L10 (-46.4344, -31.1933) -> (-51.5144, -31.1933)
  line L11 (-51.5144, -31.1933) -> (-51.5144, -36.2733)
  line L12 (-51.5144, -36.2733) -> (-46.4344, -36.2733)
  line L13 (-46.4344, -36.2733) -> (-46.4344, -31.1933)
  line L14 (-35.0044, -31.1933) -> (-29.9244, -31.1933)
  line L15 (-29.9244, -31.1933) -> (-29.9244, -36.2733)
  line L16 (-29.9244, -36.2733) -> (-35.0044, -36.2733)
  line L17 (-35.0044, -36.2733) -> (-35.0044, -31.1933)
  line L18 (-48.3394, -78.5039) -> (-46.4344, -78.5039)
  line L19 (-46.4344, -78.5039) -> (-46.4344, -83.5839)
  line L20 (-46.4344, -83.5839) -> (-48.3394, -83.5839)
  line L21 (-48.3394, -83.5839) -> (-48.3394, -78.5039)
  line L22 (-33.0994, -78.5039) -> (-35.0044, -78.5039)
  line L23 (-35.0044, -78.5039) -> (-35.0044, -83.5839)
  line L24 (-35.0044, -83.5839) -> (-33.0994, -83.5839)
  line L25 (-33.0994, -83.5839) -> (-33.0994, -78.5039)
  line L26 (-46.4344, -78.5039) -> (-51.5144, -78.5039)
  line L27 (-51.5144, -78.5039) -> (-51.5144, -83.5839)
  line L28 (-51.5144, -83.5839) -> (-46.4344, -83.5839)
  line L29 (-46.4344, -83.5839) -> (-46.4344, -78.5039)
  line L30 (-35.0044, -78.5039) -> (-29.9244, -78.5039)
  line L31 (-29.9244, -78.5039) -> (-29.9244, -83.5839)
  line L32 (-29.9244, -83.5839) -> (-35.0044, -83.5839)
  line L33 (-35.0044, -83.5839) -> (-35.0044, -78.5039)
  point P0 (0, 0)
  dimension "d166" = 5.08
  dimension "d167" = 5.08
  dimension "d168" = 5.08
  dimension "d169" = 1.905
  dimension "d170" = 1.905
  dimension "d171" = 1.905
  dimension "d172" = 1.905
  dimension "d173" = 5.08
  dimension "d174" = 5.08
  dimension "d175" = 5.08
  dimension "d176" = 5.08
extrude "Extrusion16" add sketch "Sketch13" along normal blind 1.905
fillet "Fillet2" radius 3.175 4 edges at (-29.9244, 33.655, -81.0439) (-51.5144, 33.655, -81.0439) (-29.9244, 33.655, -33.7333) (-51.5144, 33.655, -33.7333)
sketch "Sketch14" plane through (-46.4344, 35.56, -36.2733) normal (0, 0, -1) x (-1, 0, 0)
  line L0 (1.905, 0) -> (0, 0) projected
  line L1 (0, 0) -> (0, -1.905) projected
  line L2 (1.905, 0) -> (0, 0)
  line L3 (0, 0) -> (0, -0.9525)
  line L4 (0, -0.9525) -> (1.905, -0.9525)
  line L5 (1.905, -0.9525) -> (1.905, 0)
  line L6 (-11.43, 0) -> (-13.335, 0) projected
  line L7 (-13.335, 0) -> (-11.43, 0)
  line L8 (-11.43, 0) -> (-11.43, -0.9525)
  line L9 (-11.43, -0.9525) -> (-13.335, -0.9525)
  line L10 (-13.335, -0.9525) -> (-13.335, 0)
  point P0 (-46.4344, -35.56)
  point P1 (-11.43, 0)
  dimension "d180" = 0.9525
  dimension "d181" = 0.9525
extrude "Extrusion17" cut sketch "Sketch14" along normal blind 50.8 and the other way blind 12.7
sketch "Sketch15" plane through (-172.72, 0, -109.22) normal (0, 0, 1) x (1, 0, 0)
  line L0 (-40.4484, 62.594) -> (200.0491, 62.594)
  line L1 (200.0491, 62.594) -> (200.0491, -43.715)
  line L2 (200.0491, -43.715) -> (-40.4484, -43.715)
  line L3 (-40.4484, -43.715) -> (-40.4484, 62.594)
  point P0 (172.72, 0)
extrude "Extrusion18" cut sketch "Sketch15" along normal blind 127
sketch "Sketch16" plane through (-177.8, 0, -109.22) normal (0, 0, 1) x (1, 0, 0)
  line L0 (-8.794, 45.1558) -> (94.6429, 45.1558)
  line L1 (94.6429, 45.1558) -> (94.6429, -7.2306)
  line L2 (94.6429, -7.2306) -> (-8.794, -7.2306)
  line L3 (-8.794, -7.2306) -> (-8.794, 45.1558)
  line L4 (130.7122, 46.8734) -> (185.1979, 46.8734)
  line L5 (185.1979, 46.8734) -> (185.1979, -7.2306)
  line L6 (185.1979, -7.2306) -> (130.7122, -7.2306)
  line L7 (130.7122, -7.2306) -> (130.7122, 46.8734)
  line L8 (94.6429, 45.1558) -> (130.7122, 45.1558)
  line L9 (130.7122, 45.1558) -> (130.7122, 27.5983)
  line L10 (130.7122, 27.5983) -> (94.6429, 27.5983)
  line L11 (94.6429, 27.5983) -> (94.6429, 45.1558)
  line L12 (94.6429, 10.8041) -> (130.7122, 10.8041)
  line L13 (130.7122, 10.8041) -> (130.7122, -7.2306)
  line L14 (130.7122, -7.2306) -> (94.6429, -7.2306)
  line L15 (94.6429, -7.2306) -> (94.6429, 10.8041)
  line L16 (122.5059, 27.5983) -> (130.7122, 27.5983)
  line L17 (130.7122, 27.5983) -> (130.7122, 10.8041)
  line L18 (130.7122, 10.8041) -> (122.5059, 10.8041)
  line L19 (122.5059, 10.8041) -> (122.5059, 27.5983)
  point P0 (177.8, 0)
  point P1 (94.6429, -7.2306)
  point P2 (94.6429, 27.5983)
extrude "Extrusion19" cut sketch "Sketch16" against normal blind 127 contours L0 L1 L2 L3 | L8 L7 L10 L1 | L7 L4 L5 L6 | L1 L12 L7 L14 | L10 L7 L12 L19
sketch "Sketch17" plane through (-83.1571, 27.5983, -109.22) normal (0, 0, 1) x (1, 0, 0)
  line L0 (3.9324, -1.5077) -> (22.3973, -1.5077)
  line L1 (22.3973, -1.5077) -> (22.3973, -14.3079)
  line L2 (22.3973, -14.3079) -> (3.9324, -14.3079)
  line L3 (3.9324, -14.3079) -> (3.9324, -1.5077)
  line L4 (-3.6932, 2.6863) -> (32.5829, 2.6863)
  line L5 (32.5829, 2.6863) -> (32.5829, -19.7548)
  line L6 (32.5829, -19.7548) -> (-3.6932, -19.7548)
  line L7 (-3.6932, -19.7548) -> (-3.6932, 2.6863)
  point P0 (83.1571, -27.5983)
extrude "Extrusion20" cut sketch "Sketch17" against normal blind 25.4
properties part number "Audio_jack_slot"
